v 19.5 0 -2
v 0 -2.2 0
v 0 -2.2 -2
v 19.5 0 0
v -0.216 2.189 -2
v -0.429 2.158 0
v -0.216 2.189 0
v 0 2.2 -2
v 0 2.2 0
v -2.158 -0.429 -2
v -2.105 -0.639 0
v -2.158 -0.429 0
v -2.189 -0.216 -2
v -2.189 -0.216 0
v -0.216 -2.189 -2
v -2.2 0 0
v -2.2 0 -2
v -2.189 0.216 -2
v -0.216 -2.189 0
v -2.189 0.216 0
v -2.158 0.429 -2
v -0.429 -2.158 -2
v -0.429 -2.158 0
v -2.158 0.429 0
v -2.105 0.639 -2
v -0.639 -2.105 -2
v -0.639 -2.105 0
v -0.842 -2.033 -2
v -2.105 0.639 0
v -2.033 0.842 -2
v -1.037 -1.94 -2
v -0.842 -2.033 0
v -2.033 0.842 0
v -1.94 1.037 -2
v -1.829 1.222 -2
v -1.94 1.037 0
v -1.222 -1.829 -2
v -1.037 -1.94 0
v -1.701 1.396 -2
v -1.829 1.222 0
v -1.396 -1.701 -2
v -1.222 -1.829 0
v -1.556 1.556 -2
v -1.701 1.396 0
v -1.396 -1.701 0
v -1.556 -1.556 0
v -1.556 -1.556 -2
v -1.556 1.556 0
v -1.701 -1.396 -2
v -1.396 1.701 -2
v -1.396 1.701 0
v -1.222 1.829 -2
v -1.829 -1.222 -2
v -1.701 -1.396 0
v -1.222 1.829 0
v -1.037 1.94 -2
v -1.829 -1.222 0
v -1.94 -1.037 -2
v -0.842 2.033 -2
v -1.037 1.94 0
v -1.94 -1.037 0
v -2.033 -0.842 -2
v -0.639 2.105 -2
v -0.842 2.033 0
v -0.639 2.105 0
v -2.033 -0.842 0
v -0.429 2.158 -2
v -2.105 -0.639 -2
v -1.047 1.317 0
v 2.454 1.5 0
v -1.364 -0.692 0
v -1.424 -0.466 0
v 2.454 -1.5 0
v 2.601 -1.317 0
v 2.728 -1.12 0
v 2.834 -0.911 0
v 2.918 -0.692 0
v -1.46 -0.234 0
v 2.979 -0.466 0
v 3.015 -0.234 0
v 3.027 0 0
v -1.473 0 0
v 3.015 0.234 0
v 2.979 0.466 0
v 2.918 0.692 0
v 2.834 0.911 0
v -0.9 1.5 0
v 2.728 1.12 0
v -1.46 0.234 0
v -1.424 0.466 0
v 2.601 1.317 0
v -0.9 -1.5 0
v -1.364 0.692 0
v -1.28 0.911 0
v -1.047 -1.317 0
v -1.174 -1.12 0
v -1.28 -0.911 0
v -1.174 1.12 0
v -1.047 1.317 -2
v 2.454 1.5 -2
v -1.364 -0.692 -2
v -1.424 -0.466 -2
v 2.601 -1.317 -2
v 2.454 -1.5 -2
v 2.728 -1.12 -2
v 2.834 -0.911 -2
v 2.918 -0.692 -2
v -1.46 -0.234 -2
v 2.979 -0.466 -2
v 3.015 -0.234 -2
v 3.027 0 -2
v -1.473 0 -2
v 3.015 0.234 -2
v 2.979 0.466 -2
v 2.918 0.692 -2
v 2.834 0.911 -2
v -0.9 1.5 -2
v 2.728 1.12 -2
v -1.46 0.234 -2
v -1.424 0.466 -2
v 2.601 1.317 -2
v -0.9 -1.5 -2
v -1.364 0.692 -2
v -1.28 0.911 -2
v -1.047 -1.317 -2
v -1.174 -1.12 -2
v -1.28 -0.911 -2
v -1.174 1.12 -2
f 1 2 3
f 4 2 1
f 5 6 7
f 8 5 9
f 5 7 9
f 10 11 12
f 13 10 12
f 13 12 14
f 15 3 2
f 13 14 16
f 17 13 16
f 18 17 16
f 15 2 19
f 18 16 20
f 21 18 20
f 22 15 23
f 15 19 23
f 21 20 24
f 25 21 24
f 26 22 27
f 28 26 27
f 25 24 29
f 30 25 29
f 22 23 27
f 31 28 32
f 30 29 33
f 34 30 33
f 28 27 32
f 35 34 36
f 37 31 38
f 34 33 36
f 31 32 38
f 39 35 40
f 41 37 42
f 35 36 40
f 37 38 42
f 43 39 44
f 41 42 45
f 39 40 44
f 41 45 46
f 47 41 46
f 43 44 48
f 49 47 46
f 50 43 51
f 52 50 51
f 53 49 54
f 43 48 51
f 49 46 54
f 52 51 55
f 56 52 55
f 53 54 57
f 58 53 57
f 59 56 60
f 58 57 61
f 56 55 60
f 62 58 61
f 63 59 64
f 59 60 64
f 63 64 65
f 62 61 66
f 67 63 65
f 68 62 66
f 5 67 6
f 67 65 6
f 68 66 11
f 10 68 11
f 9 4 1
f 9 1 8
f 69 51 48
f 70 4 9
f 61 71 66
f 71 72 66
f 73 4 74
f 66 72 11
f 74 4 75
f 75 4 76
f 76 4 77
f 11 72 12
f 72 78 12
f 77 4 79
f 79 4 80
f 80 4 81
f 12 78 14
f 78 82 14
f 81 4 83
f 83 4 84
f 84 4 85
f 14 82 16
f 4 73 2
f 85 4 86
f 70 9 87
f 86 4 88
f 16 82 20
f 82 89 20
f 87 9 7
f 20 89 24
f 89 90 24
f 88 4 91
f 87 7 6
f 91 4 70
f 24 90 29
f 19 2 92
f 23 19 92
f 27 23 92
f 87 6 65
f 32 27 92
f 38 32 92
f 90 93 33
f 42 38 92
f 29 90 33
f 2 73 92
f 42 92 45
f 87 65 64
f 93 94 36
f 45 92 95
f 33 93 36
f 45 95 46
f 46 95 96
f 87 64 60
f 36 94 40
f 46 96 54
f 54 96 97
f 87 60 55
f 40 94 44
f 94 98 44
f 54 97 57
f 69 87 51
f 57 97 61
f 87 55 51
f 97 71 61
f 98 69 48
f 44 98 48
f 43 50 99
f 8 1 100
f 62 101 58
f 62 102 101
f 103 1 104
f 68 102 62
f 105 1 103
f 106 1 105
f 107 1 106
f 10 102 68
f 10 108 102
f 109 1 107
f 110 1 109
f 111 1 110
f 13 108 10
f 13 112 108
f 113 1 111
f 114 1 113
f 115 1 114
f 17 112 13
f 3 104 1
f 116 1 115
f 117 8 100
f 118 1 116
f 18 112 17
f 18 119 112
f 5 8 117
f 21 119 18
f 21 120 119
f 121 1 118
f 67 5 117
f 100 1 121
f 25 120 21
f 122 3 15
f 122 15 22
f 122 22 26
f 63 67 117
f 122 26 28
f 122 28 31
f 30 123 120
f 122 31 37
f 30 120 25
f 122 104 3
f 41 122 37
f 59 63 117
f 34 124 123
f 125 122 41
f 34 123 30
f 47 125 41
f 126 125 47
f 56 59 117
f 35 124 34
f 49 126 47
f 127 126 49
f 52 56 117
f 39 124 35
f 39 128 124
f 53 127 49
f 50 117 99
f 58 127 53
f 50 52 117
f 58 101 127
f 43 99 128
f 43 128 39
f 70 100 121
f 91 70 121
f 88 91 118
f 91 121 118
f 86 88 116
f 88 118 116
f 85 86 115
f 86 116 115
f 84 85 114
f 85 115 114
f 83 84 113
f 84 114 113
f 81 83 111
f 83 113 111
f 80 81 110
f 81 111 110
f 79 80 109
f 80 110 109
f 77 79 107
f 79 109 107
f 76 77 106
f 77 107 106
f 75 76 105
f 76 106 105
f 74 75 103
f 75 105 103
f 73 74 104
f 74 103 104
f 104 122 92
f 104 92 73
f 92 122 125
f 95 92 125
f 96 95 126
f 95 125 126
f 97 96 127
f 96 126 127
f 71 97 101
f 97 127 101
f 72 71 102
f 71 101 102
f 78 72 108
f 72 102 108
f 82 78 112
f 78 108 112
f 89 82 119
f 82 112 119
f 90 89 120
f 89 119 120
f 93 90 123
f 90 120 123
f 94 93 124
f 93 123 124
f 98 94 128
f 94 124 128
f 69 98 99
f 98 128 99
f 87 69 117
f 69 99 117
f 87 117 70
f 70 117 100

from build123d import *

# Parameters (mm, degrees)
PAD_DEPTH    = 2
POCKET_DEPTH = 2


with BuildPart() as part:
    # Sketch → Pad (new body)
    with BuildSketch(Plane(origin=(0, 0, 0), x_dir=(1, 0, 0), z_dir=(0, 0, -1))):
        with BuildLine():
            Line((0, 2.2), (19.5, 0))
            Line((19.5, 0), (0, -2.2))
            ThreePointArc((0, 2.2), (-2.2, 0), (0, -2.2))
        make_face()
    extrude(amount=PAD_DEPTH)

    # Sketch001 → Pocket (cut)
    with BuildSketch(Plane(origin=(0, 0, -2), x_dir=(1, 0, 0), z_dir=(0, 0, -1))):
        with BuildLine():
            Line((-0.899765, 1.5), (2.454335, 1.5))
            ThreePointArc((2.454335, -1.5), (3.027284, 0), (2.454335, 1.5))
            Line((-0.899765, -1.5), (2.454335, -1.5))
            ThreePointArc((-0.899765, 1.5), (-1.472714, 0), (-0.899765, -1.5))
        make_face()
    extrude(amount=-POCKET_DEPTH, mode=Mode.SUBTRACT)


solid = part.part
